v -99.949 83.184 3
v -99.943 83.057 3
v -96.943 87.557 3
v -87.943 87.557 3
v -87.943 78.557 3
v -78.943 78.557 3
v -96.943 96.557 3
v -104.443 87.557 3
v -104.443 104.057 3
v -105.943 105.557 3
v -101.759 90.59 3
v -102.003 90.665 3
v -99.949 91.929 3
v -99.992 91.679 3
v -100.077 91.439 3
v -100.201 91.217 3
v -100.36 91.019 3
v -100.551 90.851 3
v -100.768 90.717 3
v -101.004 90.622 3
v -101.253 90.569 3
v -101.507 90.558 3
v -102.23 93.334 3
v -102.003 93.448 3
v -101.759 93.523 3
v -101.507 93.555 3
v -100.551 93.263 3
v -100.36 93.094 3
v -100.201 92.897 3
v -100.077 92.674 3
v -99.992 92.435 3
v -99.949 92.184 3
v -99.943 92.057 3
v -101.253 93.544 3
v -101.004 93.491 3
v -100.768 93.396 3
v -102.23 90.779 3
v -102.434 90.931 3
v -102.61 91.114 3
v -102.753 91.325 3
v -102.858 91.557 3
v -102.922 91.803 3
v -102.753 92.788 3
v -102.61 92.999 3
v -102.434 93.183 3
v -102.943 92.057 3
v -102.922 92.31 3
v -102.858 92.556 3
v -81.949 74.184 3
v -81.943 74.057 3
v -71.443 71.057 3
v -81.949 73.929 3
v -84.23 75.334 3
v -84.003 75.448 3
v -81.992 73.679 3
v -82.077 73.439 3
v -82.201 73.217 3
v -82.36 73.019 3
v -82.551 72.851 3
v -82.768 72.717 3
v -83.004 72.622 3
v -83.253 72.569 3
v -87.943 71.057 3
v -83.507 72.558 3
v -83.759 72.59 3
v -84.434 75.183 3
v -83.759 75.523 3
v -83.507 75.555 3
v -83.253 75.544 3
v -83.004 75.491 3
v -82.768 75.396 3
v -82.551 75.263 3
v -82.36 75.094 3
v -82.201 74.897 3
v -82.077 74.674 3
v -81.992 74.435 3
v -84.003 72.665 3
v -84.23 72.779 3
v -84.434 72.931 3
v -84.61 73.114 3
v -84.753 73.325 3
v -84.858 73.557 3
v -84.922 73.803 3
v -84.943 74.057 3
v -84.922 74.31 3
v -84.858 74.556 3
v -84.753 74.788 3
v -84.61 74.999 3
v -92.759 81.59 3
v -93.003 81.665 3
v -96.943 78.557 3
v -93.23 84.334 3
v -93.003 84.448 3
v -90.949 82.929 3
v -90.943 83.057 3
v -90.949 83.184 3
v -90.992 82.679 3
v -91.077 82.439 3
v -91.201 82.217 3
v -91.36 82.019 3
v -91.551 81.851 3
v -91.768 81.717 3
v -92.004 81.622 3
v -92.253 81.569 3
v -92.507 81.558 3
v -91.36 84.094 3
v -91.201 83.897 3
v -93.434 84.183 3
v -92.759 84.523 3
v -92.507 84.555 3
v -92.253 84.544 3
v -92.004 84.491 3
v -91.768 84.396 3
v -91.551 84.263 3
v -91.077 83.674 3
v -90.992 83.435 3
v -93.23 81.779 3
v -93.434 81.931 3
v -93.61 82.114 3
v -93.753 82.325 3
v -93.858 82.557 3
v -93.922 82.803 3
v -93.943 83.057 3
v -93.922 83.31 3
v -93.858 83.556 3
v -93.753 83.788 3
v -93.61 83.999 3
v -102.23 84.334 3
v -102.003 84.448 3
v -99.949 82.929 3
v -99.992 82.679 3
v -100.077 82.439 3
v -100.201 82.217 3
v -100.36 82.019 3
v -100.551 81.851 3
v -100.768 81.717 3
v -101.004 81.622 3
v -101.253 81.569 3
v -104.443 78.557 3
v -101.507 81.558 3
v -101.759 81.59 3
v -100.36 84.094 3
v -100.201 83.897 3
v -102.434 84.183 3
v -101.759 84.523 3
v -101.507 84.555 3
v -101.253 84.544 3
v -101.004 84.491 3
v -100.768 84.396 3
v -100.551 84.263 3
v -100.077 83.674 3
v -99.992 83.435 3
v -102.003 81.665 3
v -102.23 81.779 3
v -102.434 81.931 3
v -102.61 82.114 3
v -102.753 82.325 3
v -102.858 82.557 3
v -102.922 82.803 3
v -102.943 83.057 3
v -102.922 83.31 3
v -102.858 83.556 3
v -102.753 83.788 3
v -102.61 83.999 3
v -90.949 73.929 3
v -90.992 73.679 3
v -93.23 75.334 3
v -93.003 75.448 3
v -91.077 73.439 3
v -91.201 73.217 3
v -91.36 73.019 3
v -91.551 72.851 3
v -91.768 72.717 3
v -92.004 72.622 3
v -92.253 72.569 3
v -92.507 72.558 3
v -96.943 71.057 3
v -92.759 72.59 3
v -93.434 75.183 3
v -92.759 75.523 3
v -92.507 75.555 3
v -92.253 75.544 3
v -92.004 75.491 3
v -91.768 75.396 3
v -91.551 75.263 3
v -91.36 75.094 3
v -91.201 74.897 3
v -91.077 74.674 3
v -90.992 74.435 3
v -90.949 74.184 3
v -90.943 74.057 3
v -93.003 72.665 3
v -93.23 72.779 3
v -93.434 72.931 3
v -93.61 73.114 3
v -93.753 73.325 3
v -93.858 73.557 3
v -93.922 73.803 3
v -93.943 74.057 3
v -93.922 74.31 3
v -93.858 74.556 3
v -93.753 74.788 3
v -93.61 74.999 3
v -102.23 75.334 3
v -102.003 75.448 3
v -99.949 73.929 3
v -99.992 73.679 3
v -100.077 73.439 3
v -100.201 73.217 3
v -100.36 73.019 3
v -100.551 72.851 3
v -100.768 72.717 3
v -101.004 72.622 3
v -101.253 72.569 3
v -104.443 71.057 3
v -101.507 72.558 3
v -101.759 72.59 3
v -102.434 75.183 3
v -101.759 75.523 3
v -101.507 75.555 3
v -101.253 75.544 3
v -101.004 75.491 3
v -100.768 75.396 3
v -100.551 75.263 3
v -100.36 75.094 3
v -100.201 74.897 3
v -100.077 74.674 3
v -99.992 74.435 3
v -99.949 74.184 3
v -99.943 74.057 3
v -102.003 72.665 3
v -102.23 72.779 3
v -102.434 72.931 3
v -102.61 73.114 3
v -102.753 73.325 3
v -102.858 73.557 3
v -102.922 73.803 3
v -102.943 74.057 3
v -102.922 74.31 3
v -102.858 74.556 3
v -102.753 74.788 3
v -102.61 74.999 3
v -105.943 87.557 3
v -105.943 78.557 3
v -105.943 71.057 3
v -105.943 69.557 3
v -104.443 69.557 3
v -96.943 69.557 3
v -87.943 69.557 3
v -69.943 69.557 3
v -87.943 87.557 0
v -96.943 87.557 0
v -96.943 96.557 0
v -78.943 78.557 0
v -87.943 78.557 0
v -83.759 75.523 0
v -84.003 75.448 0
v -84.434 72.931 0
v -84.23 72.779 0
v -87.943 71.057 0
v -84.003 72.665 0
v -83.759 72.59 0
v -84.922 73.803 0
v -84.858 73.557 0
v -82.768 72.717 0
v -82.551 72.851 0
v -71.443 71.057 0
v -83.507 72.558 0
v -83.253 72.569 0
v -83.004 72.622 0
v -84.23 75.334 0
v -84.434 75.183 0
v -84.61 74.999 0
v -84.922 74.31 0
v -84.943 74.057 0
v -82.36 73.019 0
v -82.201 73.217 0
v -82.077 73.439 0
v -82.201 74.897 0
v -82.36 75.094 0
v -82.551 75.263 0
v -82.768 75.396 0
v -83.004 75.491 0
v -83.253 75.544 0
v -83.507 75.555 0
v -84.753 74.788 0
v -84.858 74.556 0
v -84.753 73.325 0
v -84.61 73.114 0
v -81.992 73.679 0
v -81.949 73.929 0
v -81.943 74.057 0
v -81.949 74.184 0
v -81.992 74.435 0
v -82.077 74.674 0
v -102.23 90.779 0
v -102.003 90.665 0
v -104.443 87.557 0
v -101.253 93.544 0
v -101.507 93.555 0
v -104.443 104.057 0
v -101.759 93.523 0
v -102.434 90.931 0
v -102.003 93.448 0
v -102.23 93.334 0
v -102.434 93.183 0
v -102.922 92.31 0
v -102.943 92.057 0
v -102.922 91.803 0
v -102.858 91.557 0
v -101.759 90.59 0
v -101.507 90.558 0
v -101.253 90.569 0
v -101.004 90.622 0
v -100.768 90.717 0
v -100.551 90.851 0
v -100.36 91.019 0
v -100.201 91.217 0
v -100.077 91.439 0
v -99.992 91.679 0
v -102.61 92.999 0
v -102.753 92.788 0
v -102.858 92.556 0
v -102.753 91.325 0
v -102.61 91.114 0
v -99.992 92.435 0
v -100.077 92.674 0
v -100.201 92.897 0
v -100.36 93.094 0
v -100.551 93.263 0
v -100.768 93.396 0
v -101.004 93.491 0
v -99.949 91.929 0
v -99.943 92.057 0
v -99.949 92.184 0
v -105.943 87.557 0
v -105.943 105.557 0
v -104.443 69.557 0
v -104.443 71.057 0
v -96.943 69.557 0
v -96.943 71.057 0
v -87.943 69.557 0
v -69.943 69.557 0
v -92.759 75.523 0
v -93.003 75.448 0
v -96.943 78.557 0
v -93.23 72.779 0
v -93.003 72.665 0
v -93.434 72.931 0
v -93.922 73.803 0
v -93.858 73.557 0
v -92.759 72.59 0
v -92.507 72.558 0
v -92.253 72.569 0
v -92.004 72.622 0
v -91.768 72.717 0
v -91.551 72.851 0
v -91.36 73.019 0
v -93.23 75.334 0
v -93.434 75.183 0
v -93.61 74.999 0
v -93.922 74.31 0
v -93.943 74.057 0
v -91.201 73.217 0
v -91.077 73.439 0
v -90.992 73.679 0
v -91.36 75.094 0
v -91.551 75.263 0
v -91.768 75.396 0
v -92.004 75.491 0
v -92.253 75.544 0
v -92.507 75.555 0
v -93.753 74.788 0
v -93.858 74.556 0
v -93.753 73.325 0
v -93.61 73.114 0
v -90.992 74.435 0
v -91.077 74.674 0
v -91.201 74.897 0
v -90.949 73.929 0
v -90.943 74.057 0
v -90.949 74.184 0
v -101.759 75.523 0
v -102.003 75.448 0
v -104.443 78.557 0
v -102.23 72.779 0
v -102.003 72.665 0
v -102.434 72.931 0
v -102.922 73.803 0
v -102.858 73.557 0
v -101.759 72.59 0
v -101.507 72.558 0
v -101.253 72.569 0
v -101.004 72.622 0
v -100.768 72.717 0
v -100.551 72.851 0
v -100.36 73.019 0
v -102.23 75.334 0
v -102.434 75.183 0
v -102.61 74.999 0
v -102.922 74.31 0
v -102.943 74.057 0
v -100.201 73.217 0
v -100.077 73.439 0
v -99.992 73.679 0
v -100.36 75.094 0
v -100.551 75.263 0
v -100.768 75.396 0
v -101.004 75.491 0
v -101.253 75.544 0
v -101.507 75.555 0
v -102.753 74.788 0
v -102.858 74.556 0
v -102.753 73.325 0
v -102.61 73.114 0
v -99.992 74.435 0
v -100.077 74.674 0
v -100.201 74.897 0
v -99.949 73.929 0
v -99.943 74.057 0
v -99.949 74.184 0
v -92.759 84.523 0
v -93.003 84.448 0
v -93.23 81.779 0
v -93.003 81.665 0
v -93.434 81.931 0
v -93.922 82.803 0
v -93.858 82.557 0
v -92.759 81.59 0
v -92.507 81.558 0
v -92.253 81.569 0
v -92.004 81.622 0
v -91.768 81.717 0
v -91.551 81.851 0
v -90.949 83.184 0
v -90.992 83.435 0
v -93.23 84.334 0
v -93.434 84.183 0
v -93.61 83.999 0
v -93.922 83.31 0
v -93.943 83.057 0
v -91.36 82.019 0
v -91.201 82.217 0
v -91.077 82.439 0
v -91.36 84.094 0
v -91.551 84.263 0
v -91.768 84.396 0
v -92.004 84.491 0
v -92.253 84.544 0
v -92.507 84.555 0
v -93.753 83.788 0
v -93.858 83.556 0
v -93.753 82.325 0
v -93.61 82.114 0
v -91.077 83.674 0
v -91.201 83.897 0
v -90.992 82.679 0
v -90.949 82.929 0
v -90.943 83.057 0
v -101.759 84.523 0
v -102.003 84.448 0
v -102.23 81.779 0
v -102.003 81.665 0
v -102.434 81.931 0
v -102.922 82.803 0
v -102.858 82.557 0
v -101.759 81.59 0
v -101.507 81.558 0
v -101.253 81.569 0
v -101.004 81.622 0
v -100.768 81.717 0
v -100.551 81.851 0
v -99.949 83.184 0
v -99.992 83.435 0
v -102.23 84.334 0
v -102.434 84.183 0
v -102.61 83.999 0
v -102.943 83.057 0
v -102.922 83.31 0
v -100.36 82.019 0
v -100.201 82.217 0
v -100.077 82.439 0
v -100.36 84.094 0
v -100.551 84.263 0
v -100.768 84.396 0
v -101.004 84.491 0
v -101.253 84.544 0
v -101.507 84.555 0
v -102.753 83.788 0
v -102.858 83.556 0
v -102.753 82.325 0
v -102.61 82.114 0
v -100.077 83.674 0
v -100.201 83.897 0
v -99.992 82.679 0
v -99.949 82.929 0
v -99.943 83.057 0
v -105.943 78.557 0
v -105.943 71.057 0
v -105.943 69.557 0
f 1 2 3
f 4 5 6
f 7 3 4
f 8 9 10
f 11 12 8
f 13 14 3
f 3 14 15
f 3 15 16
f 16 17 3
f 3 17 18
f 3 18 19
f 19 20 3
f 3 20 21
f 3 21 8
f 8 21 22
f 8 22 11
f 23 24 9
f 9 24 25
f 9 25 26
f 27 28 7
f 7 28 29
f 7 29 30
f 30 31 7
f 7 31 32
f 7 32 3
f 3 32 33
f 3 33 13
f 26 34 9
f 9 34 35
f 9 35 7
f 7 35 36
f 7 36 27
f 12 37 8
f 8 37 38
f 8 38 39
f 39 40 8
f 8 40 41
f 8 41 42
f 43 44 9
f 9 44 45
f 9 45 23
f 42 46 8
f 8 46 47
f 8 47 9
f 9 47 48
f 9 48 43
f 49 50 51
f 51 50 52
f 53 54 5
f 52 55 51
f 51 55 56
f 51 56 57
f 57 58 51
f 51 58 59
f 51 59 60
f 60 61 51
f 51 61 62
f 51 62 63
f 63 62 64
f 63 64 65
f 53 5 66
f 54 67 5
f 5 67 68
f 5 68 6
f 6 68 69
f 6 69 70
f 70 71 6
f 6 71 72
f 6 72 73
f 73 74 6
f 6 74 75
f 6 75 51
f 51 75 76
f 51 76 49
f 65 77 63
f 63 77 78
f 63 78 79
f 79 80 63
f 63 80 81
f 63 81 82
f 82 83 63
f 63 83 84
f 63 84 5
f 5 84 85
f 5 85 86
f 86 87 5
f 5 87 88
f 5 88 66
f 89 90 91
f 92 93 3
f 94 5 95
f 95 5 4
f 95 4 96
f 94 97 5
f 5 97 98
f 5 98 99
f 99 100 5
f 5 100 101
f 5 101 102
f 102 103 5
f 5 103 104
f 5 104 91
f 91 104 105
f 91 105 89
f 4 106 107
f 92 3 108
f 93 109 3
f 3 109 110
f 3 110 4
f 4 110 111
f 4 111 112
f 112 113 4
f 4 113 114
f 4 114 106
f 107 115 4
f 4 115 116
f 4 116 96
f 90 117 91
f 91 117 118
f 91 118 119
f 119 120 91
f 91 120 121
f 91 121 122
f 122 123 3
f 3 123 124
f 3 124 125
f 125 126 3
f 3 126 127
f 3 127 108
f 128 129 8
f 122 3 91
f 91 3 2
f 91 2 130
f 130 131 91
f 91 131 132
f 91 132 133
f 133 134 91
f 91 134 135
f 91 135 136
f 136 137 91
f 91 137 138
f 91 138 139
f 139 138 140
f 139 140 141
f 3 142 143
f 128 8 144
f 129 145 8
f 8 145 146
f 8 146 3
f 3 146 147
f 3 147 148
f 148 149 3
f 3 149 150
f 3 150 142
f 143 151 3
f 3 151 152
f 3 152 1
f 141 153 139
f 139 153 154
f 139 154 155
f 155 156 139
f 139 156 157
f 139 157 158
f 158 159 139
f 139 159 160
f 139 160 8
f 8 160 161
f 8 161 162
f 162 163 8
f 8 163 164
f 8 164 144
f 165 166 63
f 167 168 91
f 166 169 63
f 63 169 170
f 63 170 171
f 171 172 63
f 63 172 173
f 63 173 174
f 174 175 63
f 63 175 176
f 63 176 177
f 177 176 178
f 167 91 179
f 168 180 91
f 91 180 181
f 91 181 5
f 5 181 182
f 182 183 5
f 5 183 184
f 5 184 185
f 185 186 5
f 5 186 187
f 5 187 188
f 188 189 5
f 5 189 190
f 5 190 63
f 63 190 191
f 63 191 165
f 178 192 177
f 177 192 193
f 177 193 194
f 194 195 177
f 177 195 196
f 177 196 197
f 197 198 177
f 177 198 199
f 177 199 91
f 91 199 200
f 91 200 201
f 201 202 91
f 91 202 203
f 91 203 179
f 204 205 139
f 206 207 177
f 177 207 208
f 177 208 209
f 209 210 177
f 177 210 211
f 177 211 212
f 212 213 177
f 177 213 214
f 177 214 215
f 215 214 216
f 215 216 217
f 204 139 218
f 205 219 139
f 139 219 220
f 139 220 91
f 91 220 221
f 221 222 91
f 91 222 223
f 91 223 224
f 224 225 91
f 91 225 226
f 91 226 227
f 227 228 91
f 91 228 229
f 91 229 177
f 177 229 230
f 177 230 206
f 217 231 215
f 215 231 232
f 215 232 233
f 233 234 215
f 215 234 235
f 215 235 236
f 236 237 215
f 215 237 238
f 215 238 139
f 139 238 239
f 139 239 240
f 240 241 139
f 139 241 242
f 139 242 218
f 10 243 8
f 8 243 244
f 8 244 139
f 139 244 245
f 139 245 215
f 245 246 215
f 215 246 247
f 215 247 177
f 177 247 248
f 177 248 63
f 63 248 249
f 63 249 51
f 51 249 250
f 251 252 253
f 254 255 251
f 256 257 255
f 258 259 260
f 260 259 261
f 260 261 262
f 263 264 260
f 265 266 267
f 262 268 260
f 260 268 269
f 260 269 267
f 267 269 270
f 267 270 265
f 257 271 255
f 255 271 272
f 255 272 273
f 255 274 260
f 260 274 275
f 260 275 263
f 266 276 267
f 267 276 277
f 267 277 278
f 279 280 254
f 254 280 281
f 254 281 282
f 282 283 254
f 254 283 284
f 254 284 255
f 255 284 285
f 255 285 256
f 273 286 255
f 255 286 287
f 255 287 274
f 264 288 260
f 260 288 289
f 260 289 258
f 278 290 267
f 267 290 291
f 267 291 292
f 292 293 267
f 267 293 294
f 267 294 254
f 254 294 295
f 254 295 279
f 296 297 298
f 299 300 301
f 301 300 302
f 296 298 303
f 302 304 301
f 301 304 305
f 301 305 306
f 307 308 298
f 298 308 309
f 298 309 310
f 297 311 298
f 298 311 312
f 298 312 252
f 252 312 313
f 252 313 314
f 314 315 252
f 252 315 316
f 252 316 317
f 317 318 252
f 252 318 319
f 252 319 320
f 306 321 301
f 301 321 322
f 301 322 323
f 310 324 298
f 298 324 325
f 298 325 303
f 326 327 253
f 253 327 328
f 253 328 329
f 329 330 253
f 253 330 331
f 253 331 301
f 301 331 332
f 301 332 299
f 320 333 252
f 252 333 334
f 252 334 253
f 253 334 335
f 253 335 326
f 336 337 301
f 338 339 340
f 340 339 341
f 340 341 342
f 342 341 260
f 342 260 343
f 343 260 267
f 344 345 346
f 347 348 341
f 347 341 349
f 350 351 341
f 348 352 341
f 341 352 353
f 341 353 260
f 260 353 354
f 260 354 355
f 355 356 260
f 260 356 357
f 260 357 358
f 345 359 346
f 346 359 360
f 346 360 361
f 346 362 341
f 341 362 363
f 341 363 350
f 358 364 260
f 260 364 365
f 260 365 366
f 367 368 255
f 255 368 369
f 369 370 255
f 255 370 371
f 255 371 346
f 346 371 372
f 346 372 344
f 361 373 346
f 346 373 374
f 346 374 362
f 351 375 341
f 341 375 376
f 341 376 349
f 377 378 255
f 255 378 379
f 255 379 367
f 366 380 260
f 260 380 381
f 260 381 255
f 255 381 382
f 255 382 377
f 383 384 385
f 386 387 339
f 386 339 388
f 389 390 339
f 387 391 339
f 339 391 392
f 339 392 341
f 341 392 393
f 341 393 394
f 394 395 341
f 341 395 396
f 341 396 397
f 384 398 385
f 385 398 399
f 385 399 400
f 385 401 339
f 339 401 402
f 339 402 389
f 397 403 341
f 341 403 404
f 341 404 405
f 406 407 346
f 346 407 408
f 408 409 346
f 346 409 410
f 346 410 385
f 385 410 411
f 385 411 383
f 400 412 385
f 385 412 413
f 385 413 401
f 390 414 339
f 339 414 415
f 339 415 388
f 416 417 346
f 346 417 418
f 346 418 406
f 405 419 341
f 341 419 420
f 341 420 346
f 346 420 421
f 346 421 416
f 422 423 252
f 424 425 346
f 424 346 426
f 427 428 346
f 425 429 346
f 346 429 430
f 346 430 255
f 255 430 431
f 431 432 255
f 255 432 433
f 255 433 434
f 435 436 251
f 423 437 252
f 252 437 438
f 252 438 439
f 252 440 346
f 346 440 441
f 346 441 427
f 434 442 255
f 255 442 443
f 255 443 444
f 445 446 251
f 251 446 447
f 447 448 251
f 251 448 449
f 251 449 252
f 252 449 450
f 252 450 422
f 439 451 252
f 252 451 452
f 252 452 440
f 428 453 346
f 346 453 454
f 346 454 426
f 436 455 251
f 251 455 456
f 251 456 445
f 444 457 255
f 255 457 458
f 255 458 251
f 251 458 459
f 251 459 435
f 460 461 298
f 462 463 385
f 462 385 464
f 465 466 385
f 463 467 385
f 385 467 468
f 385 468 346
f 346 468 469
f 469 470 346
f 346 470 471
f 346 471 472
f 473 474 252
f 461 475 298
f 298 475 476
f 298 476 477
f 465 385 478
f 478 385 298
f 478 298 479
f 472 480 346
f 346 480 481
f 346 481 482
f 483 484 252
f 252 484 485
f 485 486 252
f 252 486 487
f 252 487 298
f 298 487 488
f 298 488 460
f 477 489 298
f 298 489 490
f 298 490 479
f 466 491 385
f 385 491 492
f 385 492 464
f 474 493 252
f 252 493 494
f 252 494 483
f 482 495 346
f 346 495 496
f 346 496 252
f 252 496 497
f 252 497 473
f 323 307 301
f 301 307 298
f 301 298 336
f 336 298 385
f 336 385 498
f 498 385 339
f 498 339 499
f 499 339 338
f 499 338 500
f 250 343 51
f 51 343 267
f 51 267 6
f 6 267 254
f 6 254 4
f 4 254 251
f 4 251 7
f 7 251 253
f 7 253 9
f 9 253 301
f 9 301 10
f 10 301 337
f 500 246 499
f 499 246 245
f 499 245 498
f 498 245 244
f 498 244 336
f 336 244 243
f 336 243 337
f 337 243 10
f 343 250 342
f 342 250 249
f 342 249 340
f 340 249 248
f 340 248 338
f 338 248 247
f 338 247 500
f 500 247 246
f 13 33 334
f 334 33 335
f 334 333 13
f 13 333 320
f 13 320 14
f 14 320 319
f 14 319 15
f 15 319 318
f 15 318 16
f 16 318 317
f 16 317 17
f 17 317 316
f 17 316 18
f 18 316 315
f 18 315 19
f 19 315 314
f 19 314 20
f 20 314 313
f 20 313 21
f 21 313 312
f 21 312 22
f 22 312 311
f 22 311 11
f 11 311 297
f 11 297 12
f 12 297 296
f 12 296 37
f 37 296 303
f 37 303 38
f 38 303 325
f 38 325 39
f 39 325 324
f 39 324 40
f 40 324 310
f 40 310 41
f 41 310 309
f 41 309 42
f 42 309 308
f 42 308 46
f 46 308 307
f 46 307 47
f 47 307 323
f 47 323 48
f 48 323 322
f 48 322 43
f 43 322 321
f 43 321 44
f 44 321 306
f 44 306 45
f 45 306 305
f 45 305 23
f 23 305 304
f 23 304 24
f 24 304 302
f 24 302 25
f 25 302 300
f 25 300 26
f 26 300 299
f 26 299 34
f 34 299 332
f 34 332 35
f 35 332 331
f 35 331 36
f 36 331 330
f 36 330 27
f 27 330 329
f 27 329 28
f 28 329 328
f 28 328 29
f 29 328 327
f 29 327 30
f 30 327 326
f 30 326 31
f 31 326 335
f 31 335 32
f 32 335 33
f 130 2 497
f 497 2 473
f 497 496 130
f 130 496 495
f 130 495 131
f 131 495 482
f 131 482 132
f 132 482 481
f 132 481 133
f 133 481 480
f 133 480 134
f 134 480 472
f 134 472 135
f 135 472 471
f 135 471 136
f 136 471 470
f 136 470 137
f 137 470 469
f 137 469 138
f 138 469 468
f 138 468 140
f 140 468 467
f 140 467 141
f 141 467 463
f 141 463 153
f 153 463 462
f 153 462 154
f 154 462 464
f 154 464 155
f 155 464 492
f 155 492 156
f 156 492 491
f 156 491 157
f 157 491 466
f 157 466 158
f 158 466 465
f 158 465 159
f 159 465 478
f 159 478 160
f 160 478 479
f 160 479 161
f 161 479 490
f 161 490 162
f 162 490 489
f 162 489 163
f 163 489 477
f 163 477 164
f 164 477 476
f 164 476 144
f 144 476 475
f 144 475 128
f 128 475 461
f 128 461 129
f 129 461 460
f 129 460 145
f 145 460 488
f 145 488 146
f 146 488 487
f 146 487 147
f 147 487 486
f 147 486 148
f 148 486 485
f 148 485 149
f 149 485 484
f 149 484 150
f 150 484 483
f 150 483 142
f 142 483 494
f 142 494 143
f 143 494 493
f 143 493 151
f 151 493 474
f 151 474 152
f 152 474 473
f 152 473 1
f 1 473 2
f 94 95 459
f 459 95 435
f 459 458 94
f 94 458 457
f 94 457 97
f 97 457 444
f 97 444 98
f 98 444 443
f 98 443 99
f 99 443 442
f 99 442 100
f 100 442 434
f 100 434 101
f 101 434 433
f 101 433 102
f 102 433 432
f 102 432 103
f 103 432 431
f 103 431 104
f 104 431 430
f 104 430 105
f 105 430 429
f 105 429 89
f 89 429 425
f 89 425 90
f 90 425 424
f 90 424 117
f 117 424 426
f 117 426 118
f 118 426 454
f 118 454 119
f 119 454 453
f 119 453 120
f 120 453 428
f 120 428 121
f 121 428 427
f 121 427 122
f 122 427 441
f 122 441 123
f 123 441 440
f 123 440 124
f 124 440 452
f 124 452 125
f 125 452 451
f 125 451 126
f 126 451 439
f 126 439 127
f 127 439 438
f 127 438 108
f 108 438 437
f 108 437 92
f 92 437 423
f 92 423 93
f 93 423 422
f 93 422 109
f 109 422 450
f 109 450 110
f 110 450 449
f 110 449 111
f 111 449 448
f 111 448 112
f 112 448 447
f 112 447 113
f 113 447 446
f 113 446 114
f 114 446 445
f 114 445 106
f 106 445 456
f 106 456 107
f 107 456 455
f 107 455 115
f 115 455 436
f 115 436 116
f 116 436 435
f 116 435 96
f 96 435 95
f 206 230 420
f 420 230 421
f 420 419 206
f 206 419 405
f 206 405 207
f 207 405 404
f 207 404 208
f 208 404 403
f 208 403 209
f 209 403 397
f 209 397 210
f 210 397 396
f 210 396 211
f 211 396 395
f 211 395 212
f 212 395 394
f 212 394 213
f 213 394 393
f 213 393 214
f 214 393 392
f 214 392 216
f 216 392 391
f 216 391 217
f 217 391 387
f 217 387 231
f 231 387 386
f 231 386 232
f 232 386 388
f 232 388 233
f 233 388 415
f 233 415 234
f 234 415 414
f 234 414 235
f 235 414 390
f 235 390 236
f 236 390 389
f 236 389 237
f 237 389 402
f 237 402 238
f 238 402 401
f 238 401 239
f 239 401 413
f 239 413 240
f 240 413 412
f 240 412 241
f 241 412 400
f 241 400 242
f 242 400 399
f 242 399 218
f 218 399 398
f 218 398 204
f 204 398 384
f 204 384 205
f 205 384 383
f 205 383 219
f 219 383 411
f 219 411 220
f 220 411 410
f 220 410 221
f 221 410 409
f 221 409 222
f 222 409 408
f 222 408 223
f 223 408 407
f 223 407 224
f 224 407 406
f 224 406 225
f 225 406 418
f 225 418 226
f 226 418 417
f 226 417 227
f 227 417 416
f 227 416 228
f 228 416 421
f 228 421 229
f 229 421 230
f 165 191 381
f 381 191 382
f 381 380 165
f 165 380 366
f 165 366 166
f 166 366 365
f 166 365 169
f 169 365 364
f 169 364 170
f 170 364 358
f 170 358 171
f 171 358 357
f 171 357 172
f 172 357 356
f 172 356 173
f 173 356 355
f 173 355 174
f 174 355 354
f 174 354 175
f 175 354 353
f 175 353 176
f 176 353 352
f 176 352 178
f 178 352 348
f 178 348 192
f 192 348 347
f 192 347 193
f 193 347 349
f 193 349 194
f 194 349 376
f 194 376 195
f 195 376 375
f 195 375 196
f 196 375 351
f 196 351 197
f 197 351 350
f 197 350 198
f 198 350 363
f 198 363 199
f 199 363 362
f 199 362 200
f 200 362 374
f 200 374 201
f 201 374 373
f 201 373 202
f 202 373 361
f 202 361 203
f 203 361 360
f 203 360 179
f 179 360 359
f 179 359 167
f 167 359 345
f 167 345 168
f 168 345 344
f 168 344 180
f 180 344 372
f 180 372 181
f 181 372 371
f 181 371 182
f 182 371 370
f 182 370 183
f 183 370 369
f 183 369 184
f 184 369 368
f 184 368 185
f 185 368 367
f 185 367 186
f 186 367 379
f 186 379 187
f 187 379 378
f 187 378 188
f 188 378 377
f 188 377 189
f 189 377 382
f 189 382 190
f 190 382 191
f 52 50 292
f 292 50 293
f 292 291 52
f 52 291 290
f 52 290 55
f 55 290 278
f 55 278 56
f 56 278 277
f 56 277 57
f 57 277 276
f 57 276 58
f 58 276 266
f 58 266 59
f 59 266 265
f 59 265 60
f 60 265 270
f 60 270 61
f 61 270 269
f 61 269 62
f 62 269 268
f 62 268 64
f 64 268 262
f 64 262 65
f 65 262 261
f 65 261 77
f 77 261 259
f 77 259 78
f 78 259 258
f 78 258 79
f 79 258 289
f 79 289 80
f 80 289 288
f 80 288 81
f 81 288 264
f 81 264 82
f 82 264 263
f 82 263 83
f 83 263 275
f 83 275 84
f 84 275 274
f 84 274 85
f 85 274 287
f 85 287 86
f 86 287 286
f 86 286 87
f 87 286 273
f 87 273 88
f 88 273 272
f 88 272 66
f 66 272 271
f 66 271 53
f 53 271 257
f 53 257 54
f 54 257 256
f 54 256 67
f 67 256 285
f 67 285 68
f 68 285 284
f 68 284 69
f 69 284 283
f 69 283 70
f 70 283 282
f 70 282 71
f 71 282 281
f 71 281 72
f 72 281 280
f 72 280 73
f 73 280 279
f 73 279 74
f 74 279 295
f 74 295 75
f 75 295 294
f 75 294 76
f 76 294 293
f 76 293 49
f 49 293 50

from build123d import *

# Parameters (mm, degrees)
MODEL_R                 = 1.5
SALIENTE_EXTRUIR1_DEPTH = 3


with BuildPart() as part:
    # Model → Saliente-Extruir1 (new body)
    with BuildSketch(Plane.XY):
        Polygon((-105.943383637, 105.556539338), (-105.943383637, 69.556539338), (-69.943383637, 69.556539338), align=None)
        with Locations((-101.443383637, 92.056539338)):
            Circle(MODEL_R, mode=Mode.SUBTRACT)
        with Locations((-101.443383637, 83.056539338)):
            Circle(MODEL_R, mode=Mode.SUBTRACT)
        with Locations((-92.443383637, 83.056539338)):
            Circle(MODEL_R, mode=Mode.SUBTRACT)
        with Locations((-101.443383637, 74.056539338)):
            Circle(MODEL_R, mode=Mode.SUBTRACT)
        with Locations((-92.443383637, 74.056539338)):
            Circle(MODEL_R, mode=Mode.SUBTRACT)
        with Locations((-83.443383637, 74.056539338)):
            Circle(MODEL_R, mode=Mode.SUBTRACT)
    extrude(amount=SALIENTE_EXTRUIR1_DEPTH)


solid = part.part
